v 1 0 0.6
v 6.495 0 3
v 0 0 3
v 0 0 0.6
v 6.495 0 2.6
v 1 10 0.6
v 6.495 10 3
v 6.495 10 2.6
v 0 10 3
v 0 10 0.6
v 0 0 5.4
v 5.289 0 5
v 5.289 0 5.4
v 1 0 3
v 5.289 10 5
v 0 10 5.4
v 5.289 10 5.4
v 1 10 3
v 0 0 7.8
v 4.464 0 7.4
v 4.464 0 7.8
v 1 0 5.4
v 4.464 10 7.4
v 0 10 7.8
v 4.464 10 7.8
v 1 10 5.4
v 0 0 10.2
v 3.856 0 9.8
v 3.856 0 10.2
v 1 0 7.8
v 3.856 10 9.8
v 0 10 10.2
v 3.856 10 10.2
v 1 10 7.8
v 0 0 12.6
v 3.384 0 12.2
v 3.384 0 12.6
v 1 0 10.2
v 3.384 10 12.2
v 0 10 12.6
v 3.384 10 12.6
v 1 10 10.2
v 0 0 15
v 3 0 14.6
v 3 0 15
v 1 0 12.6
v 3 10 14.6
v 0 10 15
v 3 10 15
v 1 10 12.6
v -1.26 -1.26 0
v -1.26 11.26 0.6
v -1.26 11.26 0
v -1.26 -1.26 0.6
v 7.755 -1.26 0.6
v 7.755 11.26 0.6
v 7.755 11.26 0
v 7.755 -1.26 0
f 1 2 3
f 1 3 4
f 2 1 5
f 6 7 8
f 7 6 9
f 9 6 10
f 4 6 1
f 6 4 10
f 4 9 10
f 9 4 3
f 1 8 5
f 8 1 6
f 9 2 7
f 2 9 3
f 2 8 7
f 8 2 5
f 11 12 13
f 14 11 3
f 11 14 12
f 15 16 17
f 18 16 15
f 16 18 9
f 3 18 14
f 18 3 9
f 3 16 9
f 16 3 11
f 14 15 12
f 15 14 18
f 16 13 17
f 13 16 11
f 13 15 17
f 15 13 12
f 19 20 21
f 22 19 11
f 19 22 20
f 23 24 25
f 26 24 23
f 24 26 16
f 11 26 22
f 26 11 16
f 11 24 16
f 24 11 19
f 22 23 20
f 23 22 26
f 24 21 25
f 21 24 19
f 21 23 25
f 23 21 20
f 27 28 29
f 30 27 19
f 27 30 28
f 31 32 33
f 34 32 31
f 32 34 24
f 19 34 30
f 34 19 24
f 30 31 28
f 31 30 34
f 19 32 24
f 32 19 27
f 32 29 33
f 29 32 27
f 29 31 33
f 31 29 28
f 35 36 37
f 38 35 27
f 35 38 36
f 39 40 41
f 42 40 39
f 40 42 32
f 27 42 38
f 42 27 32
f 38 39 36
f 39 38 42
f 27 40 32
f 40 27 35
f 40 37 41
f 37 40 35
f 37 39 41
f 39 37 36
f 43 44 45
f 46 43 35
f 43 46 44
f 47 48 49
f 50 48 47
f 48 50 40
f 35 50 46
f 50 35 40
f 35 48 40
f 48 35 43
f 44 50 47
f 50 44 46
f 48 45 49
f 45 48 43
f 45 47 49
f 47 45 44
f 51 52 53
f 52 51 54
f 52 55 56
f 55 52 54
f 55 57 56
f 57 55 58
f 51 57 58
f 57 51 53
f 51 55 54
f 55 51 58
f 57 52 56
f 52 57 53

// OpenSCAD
include <3d-printer-testing-suite.scad>

/* [Hidden] */
color_scheme = ["lightblue"];
test_type = "overhang";
